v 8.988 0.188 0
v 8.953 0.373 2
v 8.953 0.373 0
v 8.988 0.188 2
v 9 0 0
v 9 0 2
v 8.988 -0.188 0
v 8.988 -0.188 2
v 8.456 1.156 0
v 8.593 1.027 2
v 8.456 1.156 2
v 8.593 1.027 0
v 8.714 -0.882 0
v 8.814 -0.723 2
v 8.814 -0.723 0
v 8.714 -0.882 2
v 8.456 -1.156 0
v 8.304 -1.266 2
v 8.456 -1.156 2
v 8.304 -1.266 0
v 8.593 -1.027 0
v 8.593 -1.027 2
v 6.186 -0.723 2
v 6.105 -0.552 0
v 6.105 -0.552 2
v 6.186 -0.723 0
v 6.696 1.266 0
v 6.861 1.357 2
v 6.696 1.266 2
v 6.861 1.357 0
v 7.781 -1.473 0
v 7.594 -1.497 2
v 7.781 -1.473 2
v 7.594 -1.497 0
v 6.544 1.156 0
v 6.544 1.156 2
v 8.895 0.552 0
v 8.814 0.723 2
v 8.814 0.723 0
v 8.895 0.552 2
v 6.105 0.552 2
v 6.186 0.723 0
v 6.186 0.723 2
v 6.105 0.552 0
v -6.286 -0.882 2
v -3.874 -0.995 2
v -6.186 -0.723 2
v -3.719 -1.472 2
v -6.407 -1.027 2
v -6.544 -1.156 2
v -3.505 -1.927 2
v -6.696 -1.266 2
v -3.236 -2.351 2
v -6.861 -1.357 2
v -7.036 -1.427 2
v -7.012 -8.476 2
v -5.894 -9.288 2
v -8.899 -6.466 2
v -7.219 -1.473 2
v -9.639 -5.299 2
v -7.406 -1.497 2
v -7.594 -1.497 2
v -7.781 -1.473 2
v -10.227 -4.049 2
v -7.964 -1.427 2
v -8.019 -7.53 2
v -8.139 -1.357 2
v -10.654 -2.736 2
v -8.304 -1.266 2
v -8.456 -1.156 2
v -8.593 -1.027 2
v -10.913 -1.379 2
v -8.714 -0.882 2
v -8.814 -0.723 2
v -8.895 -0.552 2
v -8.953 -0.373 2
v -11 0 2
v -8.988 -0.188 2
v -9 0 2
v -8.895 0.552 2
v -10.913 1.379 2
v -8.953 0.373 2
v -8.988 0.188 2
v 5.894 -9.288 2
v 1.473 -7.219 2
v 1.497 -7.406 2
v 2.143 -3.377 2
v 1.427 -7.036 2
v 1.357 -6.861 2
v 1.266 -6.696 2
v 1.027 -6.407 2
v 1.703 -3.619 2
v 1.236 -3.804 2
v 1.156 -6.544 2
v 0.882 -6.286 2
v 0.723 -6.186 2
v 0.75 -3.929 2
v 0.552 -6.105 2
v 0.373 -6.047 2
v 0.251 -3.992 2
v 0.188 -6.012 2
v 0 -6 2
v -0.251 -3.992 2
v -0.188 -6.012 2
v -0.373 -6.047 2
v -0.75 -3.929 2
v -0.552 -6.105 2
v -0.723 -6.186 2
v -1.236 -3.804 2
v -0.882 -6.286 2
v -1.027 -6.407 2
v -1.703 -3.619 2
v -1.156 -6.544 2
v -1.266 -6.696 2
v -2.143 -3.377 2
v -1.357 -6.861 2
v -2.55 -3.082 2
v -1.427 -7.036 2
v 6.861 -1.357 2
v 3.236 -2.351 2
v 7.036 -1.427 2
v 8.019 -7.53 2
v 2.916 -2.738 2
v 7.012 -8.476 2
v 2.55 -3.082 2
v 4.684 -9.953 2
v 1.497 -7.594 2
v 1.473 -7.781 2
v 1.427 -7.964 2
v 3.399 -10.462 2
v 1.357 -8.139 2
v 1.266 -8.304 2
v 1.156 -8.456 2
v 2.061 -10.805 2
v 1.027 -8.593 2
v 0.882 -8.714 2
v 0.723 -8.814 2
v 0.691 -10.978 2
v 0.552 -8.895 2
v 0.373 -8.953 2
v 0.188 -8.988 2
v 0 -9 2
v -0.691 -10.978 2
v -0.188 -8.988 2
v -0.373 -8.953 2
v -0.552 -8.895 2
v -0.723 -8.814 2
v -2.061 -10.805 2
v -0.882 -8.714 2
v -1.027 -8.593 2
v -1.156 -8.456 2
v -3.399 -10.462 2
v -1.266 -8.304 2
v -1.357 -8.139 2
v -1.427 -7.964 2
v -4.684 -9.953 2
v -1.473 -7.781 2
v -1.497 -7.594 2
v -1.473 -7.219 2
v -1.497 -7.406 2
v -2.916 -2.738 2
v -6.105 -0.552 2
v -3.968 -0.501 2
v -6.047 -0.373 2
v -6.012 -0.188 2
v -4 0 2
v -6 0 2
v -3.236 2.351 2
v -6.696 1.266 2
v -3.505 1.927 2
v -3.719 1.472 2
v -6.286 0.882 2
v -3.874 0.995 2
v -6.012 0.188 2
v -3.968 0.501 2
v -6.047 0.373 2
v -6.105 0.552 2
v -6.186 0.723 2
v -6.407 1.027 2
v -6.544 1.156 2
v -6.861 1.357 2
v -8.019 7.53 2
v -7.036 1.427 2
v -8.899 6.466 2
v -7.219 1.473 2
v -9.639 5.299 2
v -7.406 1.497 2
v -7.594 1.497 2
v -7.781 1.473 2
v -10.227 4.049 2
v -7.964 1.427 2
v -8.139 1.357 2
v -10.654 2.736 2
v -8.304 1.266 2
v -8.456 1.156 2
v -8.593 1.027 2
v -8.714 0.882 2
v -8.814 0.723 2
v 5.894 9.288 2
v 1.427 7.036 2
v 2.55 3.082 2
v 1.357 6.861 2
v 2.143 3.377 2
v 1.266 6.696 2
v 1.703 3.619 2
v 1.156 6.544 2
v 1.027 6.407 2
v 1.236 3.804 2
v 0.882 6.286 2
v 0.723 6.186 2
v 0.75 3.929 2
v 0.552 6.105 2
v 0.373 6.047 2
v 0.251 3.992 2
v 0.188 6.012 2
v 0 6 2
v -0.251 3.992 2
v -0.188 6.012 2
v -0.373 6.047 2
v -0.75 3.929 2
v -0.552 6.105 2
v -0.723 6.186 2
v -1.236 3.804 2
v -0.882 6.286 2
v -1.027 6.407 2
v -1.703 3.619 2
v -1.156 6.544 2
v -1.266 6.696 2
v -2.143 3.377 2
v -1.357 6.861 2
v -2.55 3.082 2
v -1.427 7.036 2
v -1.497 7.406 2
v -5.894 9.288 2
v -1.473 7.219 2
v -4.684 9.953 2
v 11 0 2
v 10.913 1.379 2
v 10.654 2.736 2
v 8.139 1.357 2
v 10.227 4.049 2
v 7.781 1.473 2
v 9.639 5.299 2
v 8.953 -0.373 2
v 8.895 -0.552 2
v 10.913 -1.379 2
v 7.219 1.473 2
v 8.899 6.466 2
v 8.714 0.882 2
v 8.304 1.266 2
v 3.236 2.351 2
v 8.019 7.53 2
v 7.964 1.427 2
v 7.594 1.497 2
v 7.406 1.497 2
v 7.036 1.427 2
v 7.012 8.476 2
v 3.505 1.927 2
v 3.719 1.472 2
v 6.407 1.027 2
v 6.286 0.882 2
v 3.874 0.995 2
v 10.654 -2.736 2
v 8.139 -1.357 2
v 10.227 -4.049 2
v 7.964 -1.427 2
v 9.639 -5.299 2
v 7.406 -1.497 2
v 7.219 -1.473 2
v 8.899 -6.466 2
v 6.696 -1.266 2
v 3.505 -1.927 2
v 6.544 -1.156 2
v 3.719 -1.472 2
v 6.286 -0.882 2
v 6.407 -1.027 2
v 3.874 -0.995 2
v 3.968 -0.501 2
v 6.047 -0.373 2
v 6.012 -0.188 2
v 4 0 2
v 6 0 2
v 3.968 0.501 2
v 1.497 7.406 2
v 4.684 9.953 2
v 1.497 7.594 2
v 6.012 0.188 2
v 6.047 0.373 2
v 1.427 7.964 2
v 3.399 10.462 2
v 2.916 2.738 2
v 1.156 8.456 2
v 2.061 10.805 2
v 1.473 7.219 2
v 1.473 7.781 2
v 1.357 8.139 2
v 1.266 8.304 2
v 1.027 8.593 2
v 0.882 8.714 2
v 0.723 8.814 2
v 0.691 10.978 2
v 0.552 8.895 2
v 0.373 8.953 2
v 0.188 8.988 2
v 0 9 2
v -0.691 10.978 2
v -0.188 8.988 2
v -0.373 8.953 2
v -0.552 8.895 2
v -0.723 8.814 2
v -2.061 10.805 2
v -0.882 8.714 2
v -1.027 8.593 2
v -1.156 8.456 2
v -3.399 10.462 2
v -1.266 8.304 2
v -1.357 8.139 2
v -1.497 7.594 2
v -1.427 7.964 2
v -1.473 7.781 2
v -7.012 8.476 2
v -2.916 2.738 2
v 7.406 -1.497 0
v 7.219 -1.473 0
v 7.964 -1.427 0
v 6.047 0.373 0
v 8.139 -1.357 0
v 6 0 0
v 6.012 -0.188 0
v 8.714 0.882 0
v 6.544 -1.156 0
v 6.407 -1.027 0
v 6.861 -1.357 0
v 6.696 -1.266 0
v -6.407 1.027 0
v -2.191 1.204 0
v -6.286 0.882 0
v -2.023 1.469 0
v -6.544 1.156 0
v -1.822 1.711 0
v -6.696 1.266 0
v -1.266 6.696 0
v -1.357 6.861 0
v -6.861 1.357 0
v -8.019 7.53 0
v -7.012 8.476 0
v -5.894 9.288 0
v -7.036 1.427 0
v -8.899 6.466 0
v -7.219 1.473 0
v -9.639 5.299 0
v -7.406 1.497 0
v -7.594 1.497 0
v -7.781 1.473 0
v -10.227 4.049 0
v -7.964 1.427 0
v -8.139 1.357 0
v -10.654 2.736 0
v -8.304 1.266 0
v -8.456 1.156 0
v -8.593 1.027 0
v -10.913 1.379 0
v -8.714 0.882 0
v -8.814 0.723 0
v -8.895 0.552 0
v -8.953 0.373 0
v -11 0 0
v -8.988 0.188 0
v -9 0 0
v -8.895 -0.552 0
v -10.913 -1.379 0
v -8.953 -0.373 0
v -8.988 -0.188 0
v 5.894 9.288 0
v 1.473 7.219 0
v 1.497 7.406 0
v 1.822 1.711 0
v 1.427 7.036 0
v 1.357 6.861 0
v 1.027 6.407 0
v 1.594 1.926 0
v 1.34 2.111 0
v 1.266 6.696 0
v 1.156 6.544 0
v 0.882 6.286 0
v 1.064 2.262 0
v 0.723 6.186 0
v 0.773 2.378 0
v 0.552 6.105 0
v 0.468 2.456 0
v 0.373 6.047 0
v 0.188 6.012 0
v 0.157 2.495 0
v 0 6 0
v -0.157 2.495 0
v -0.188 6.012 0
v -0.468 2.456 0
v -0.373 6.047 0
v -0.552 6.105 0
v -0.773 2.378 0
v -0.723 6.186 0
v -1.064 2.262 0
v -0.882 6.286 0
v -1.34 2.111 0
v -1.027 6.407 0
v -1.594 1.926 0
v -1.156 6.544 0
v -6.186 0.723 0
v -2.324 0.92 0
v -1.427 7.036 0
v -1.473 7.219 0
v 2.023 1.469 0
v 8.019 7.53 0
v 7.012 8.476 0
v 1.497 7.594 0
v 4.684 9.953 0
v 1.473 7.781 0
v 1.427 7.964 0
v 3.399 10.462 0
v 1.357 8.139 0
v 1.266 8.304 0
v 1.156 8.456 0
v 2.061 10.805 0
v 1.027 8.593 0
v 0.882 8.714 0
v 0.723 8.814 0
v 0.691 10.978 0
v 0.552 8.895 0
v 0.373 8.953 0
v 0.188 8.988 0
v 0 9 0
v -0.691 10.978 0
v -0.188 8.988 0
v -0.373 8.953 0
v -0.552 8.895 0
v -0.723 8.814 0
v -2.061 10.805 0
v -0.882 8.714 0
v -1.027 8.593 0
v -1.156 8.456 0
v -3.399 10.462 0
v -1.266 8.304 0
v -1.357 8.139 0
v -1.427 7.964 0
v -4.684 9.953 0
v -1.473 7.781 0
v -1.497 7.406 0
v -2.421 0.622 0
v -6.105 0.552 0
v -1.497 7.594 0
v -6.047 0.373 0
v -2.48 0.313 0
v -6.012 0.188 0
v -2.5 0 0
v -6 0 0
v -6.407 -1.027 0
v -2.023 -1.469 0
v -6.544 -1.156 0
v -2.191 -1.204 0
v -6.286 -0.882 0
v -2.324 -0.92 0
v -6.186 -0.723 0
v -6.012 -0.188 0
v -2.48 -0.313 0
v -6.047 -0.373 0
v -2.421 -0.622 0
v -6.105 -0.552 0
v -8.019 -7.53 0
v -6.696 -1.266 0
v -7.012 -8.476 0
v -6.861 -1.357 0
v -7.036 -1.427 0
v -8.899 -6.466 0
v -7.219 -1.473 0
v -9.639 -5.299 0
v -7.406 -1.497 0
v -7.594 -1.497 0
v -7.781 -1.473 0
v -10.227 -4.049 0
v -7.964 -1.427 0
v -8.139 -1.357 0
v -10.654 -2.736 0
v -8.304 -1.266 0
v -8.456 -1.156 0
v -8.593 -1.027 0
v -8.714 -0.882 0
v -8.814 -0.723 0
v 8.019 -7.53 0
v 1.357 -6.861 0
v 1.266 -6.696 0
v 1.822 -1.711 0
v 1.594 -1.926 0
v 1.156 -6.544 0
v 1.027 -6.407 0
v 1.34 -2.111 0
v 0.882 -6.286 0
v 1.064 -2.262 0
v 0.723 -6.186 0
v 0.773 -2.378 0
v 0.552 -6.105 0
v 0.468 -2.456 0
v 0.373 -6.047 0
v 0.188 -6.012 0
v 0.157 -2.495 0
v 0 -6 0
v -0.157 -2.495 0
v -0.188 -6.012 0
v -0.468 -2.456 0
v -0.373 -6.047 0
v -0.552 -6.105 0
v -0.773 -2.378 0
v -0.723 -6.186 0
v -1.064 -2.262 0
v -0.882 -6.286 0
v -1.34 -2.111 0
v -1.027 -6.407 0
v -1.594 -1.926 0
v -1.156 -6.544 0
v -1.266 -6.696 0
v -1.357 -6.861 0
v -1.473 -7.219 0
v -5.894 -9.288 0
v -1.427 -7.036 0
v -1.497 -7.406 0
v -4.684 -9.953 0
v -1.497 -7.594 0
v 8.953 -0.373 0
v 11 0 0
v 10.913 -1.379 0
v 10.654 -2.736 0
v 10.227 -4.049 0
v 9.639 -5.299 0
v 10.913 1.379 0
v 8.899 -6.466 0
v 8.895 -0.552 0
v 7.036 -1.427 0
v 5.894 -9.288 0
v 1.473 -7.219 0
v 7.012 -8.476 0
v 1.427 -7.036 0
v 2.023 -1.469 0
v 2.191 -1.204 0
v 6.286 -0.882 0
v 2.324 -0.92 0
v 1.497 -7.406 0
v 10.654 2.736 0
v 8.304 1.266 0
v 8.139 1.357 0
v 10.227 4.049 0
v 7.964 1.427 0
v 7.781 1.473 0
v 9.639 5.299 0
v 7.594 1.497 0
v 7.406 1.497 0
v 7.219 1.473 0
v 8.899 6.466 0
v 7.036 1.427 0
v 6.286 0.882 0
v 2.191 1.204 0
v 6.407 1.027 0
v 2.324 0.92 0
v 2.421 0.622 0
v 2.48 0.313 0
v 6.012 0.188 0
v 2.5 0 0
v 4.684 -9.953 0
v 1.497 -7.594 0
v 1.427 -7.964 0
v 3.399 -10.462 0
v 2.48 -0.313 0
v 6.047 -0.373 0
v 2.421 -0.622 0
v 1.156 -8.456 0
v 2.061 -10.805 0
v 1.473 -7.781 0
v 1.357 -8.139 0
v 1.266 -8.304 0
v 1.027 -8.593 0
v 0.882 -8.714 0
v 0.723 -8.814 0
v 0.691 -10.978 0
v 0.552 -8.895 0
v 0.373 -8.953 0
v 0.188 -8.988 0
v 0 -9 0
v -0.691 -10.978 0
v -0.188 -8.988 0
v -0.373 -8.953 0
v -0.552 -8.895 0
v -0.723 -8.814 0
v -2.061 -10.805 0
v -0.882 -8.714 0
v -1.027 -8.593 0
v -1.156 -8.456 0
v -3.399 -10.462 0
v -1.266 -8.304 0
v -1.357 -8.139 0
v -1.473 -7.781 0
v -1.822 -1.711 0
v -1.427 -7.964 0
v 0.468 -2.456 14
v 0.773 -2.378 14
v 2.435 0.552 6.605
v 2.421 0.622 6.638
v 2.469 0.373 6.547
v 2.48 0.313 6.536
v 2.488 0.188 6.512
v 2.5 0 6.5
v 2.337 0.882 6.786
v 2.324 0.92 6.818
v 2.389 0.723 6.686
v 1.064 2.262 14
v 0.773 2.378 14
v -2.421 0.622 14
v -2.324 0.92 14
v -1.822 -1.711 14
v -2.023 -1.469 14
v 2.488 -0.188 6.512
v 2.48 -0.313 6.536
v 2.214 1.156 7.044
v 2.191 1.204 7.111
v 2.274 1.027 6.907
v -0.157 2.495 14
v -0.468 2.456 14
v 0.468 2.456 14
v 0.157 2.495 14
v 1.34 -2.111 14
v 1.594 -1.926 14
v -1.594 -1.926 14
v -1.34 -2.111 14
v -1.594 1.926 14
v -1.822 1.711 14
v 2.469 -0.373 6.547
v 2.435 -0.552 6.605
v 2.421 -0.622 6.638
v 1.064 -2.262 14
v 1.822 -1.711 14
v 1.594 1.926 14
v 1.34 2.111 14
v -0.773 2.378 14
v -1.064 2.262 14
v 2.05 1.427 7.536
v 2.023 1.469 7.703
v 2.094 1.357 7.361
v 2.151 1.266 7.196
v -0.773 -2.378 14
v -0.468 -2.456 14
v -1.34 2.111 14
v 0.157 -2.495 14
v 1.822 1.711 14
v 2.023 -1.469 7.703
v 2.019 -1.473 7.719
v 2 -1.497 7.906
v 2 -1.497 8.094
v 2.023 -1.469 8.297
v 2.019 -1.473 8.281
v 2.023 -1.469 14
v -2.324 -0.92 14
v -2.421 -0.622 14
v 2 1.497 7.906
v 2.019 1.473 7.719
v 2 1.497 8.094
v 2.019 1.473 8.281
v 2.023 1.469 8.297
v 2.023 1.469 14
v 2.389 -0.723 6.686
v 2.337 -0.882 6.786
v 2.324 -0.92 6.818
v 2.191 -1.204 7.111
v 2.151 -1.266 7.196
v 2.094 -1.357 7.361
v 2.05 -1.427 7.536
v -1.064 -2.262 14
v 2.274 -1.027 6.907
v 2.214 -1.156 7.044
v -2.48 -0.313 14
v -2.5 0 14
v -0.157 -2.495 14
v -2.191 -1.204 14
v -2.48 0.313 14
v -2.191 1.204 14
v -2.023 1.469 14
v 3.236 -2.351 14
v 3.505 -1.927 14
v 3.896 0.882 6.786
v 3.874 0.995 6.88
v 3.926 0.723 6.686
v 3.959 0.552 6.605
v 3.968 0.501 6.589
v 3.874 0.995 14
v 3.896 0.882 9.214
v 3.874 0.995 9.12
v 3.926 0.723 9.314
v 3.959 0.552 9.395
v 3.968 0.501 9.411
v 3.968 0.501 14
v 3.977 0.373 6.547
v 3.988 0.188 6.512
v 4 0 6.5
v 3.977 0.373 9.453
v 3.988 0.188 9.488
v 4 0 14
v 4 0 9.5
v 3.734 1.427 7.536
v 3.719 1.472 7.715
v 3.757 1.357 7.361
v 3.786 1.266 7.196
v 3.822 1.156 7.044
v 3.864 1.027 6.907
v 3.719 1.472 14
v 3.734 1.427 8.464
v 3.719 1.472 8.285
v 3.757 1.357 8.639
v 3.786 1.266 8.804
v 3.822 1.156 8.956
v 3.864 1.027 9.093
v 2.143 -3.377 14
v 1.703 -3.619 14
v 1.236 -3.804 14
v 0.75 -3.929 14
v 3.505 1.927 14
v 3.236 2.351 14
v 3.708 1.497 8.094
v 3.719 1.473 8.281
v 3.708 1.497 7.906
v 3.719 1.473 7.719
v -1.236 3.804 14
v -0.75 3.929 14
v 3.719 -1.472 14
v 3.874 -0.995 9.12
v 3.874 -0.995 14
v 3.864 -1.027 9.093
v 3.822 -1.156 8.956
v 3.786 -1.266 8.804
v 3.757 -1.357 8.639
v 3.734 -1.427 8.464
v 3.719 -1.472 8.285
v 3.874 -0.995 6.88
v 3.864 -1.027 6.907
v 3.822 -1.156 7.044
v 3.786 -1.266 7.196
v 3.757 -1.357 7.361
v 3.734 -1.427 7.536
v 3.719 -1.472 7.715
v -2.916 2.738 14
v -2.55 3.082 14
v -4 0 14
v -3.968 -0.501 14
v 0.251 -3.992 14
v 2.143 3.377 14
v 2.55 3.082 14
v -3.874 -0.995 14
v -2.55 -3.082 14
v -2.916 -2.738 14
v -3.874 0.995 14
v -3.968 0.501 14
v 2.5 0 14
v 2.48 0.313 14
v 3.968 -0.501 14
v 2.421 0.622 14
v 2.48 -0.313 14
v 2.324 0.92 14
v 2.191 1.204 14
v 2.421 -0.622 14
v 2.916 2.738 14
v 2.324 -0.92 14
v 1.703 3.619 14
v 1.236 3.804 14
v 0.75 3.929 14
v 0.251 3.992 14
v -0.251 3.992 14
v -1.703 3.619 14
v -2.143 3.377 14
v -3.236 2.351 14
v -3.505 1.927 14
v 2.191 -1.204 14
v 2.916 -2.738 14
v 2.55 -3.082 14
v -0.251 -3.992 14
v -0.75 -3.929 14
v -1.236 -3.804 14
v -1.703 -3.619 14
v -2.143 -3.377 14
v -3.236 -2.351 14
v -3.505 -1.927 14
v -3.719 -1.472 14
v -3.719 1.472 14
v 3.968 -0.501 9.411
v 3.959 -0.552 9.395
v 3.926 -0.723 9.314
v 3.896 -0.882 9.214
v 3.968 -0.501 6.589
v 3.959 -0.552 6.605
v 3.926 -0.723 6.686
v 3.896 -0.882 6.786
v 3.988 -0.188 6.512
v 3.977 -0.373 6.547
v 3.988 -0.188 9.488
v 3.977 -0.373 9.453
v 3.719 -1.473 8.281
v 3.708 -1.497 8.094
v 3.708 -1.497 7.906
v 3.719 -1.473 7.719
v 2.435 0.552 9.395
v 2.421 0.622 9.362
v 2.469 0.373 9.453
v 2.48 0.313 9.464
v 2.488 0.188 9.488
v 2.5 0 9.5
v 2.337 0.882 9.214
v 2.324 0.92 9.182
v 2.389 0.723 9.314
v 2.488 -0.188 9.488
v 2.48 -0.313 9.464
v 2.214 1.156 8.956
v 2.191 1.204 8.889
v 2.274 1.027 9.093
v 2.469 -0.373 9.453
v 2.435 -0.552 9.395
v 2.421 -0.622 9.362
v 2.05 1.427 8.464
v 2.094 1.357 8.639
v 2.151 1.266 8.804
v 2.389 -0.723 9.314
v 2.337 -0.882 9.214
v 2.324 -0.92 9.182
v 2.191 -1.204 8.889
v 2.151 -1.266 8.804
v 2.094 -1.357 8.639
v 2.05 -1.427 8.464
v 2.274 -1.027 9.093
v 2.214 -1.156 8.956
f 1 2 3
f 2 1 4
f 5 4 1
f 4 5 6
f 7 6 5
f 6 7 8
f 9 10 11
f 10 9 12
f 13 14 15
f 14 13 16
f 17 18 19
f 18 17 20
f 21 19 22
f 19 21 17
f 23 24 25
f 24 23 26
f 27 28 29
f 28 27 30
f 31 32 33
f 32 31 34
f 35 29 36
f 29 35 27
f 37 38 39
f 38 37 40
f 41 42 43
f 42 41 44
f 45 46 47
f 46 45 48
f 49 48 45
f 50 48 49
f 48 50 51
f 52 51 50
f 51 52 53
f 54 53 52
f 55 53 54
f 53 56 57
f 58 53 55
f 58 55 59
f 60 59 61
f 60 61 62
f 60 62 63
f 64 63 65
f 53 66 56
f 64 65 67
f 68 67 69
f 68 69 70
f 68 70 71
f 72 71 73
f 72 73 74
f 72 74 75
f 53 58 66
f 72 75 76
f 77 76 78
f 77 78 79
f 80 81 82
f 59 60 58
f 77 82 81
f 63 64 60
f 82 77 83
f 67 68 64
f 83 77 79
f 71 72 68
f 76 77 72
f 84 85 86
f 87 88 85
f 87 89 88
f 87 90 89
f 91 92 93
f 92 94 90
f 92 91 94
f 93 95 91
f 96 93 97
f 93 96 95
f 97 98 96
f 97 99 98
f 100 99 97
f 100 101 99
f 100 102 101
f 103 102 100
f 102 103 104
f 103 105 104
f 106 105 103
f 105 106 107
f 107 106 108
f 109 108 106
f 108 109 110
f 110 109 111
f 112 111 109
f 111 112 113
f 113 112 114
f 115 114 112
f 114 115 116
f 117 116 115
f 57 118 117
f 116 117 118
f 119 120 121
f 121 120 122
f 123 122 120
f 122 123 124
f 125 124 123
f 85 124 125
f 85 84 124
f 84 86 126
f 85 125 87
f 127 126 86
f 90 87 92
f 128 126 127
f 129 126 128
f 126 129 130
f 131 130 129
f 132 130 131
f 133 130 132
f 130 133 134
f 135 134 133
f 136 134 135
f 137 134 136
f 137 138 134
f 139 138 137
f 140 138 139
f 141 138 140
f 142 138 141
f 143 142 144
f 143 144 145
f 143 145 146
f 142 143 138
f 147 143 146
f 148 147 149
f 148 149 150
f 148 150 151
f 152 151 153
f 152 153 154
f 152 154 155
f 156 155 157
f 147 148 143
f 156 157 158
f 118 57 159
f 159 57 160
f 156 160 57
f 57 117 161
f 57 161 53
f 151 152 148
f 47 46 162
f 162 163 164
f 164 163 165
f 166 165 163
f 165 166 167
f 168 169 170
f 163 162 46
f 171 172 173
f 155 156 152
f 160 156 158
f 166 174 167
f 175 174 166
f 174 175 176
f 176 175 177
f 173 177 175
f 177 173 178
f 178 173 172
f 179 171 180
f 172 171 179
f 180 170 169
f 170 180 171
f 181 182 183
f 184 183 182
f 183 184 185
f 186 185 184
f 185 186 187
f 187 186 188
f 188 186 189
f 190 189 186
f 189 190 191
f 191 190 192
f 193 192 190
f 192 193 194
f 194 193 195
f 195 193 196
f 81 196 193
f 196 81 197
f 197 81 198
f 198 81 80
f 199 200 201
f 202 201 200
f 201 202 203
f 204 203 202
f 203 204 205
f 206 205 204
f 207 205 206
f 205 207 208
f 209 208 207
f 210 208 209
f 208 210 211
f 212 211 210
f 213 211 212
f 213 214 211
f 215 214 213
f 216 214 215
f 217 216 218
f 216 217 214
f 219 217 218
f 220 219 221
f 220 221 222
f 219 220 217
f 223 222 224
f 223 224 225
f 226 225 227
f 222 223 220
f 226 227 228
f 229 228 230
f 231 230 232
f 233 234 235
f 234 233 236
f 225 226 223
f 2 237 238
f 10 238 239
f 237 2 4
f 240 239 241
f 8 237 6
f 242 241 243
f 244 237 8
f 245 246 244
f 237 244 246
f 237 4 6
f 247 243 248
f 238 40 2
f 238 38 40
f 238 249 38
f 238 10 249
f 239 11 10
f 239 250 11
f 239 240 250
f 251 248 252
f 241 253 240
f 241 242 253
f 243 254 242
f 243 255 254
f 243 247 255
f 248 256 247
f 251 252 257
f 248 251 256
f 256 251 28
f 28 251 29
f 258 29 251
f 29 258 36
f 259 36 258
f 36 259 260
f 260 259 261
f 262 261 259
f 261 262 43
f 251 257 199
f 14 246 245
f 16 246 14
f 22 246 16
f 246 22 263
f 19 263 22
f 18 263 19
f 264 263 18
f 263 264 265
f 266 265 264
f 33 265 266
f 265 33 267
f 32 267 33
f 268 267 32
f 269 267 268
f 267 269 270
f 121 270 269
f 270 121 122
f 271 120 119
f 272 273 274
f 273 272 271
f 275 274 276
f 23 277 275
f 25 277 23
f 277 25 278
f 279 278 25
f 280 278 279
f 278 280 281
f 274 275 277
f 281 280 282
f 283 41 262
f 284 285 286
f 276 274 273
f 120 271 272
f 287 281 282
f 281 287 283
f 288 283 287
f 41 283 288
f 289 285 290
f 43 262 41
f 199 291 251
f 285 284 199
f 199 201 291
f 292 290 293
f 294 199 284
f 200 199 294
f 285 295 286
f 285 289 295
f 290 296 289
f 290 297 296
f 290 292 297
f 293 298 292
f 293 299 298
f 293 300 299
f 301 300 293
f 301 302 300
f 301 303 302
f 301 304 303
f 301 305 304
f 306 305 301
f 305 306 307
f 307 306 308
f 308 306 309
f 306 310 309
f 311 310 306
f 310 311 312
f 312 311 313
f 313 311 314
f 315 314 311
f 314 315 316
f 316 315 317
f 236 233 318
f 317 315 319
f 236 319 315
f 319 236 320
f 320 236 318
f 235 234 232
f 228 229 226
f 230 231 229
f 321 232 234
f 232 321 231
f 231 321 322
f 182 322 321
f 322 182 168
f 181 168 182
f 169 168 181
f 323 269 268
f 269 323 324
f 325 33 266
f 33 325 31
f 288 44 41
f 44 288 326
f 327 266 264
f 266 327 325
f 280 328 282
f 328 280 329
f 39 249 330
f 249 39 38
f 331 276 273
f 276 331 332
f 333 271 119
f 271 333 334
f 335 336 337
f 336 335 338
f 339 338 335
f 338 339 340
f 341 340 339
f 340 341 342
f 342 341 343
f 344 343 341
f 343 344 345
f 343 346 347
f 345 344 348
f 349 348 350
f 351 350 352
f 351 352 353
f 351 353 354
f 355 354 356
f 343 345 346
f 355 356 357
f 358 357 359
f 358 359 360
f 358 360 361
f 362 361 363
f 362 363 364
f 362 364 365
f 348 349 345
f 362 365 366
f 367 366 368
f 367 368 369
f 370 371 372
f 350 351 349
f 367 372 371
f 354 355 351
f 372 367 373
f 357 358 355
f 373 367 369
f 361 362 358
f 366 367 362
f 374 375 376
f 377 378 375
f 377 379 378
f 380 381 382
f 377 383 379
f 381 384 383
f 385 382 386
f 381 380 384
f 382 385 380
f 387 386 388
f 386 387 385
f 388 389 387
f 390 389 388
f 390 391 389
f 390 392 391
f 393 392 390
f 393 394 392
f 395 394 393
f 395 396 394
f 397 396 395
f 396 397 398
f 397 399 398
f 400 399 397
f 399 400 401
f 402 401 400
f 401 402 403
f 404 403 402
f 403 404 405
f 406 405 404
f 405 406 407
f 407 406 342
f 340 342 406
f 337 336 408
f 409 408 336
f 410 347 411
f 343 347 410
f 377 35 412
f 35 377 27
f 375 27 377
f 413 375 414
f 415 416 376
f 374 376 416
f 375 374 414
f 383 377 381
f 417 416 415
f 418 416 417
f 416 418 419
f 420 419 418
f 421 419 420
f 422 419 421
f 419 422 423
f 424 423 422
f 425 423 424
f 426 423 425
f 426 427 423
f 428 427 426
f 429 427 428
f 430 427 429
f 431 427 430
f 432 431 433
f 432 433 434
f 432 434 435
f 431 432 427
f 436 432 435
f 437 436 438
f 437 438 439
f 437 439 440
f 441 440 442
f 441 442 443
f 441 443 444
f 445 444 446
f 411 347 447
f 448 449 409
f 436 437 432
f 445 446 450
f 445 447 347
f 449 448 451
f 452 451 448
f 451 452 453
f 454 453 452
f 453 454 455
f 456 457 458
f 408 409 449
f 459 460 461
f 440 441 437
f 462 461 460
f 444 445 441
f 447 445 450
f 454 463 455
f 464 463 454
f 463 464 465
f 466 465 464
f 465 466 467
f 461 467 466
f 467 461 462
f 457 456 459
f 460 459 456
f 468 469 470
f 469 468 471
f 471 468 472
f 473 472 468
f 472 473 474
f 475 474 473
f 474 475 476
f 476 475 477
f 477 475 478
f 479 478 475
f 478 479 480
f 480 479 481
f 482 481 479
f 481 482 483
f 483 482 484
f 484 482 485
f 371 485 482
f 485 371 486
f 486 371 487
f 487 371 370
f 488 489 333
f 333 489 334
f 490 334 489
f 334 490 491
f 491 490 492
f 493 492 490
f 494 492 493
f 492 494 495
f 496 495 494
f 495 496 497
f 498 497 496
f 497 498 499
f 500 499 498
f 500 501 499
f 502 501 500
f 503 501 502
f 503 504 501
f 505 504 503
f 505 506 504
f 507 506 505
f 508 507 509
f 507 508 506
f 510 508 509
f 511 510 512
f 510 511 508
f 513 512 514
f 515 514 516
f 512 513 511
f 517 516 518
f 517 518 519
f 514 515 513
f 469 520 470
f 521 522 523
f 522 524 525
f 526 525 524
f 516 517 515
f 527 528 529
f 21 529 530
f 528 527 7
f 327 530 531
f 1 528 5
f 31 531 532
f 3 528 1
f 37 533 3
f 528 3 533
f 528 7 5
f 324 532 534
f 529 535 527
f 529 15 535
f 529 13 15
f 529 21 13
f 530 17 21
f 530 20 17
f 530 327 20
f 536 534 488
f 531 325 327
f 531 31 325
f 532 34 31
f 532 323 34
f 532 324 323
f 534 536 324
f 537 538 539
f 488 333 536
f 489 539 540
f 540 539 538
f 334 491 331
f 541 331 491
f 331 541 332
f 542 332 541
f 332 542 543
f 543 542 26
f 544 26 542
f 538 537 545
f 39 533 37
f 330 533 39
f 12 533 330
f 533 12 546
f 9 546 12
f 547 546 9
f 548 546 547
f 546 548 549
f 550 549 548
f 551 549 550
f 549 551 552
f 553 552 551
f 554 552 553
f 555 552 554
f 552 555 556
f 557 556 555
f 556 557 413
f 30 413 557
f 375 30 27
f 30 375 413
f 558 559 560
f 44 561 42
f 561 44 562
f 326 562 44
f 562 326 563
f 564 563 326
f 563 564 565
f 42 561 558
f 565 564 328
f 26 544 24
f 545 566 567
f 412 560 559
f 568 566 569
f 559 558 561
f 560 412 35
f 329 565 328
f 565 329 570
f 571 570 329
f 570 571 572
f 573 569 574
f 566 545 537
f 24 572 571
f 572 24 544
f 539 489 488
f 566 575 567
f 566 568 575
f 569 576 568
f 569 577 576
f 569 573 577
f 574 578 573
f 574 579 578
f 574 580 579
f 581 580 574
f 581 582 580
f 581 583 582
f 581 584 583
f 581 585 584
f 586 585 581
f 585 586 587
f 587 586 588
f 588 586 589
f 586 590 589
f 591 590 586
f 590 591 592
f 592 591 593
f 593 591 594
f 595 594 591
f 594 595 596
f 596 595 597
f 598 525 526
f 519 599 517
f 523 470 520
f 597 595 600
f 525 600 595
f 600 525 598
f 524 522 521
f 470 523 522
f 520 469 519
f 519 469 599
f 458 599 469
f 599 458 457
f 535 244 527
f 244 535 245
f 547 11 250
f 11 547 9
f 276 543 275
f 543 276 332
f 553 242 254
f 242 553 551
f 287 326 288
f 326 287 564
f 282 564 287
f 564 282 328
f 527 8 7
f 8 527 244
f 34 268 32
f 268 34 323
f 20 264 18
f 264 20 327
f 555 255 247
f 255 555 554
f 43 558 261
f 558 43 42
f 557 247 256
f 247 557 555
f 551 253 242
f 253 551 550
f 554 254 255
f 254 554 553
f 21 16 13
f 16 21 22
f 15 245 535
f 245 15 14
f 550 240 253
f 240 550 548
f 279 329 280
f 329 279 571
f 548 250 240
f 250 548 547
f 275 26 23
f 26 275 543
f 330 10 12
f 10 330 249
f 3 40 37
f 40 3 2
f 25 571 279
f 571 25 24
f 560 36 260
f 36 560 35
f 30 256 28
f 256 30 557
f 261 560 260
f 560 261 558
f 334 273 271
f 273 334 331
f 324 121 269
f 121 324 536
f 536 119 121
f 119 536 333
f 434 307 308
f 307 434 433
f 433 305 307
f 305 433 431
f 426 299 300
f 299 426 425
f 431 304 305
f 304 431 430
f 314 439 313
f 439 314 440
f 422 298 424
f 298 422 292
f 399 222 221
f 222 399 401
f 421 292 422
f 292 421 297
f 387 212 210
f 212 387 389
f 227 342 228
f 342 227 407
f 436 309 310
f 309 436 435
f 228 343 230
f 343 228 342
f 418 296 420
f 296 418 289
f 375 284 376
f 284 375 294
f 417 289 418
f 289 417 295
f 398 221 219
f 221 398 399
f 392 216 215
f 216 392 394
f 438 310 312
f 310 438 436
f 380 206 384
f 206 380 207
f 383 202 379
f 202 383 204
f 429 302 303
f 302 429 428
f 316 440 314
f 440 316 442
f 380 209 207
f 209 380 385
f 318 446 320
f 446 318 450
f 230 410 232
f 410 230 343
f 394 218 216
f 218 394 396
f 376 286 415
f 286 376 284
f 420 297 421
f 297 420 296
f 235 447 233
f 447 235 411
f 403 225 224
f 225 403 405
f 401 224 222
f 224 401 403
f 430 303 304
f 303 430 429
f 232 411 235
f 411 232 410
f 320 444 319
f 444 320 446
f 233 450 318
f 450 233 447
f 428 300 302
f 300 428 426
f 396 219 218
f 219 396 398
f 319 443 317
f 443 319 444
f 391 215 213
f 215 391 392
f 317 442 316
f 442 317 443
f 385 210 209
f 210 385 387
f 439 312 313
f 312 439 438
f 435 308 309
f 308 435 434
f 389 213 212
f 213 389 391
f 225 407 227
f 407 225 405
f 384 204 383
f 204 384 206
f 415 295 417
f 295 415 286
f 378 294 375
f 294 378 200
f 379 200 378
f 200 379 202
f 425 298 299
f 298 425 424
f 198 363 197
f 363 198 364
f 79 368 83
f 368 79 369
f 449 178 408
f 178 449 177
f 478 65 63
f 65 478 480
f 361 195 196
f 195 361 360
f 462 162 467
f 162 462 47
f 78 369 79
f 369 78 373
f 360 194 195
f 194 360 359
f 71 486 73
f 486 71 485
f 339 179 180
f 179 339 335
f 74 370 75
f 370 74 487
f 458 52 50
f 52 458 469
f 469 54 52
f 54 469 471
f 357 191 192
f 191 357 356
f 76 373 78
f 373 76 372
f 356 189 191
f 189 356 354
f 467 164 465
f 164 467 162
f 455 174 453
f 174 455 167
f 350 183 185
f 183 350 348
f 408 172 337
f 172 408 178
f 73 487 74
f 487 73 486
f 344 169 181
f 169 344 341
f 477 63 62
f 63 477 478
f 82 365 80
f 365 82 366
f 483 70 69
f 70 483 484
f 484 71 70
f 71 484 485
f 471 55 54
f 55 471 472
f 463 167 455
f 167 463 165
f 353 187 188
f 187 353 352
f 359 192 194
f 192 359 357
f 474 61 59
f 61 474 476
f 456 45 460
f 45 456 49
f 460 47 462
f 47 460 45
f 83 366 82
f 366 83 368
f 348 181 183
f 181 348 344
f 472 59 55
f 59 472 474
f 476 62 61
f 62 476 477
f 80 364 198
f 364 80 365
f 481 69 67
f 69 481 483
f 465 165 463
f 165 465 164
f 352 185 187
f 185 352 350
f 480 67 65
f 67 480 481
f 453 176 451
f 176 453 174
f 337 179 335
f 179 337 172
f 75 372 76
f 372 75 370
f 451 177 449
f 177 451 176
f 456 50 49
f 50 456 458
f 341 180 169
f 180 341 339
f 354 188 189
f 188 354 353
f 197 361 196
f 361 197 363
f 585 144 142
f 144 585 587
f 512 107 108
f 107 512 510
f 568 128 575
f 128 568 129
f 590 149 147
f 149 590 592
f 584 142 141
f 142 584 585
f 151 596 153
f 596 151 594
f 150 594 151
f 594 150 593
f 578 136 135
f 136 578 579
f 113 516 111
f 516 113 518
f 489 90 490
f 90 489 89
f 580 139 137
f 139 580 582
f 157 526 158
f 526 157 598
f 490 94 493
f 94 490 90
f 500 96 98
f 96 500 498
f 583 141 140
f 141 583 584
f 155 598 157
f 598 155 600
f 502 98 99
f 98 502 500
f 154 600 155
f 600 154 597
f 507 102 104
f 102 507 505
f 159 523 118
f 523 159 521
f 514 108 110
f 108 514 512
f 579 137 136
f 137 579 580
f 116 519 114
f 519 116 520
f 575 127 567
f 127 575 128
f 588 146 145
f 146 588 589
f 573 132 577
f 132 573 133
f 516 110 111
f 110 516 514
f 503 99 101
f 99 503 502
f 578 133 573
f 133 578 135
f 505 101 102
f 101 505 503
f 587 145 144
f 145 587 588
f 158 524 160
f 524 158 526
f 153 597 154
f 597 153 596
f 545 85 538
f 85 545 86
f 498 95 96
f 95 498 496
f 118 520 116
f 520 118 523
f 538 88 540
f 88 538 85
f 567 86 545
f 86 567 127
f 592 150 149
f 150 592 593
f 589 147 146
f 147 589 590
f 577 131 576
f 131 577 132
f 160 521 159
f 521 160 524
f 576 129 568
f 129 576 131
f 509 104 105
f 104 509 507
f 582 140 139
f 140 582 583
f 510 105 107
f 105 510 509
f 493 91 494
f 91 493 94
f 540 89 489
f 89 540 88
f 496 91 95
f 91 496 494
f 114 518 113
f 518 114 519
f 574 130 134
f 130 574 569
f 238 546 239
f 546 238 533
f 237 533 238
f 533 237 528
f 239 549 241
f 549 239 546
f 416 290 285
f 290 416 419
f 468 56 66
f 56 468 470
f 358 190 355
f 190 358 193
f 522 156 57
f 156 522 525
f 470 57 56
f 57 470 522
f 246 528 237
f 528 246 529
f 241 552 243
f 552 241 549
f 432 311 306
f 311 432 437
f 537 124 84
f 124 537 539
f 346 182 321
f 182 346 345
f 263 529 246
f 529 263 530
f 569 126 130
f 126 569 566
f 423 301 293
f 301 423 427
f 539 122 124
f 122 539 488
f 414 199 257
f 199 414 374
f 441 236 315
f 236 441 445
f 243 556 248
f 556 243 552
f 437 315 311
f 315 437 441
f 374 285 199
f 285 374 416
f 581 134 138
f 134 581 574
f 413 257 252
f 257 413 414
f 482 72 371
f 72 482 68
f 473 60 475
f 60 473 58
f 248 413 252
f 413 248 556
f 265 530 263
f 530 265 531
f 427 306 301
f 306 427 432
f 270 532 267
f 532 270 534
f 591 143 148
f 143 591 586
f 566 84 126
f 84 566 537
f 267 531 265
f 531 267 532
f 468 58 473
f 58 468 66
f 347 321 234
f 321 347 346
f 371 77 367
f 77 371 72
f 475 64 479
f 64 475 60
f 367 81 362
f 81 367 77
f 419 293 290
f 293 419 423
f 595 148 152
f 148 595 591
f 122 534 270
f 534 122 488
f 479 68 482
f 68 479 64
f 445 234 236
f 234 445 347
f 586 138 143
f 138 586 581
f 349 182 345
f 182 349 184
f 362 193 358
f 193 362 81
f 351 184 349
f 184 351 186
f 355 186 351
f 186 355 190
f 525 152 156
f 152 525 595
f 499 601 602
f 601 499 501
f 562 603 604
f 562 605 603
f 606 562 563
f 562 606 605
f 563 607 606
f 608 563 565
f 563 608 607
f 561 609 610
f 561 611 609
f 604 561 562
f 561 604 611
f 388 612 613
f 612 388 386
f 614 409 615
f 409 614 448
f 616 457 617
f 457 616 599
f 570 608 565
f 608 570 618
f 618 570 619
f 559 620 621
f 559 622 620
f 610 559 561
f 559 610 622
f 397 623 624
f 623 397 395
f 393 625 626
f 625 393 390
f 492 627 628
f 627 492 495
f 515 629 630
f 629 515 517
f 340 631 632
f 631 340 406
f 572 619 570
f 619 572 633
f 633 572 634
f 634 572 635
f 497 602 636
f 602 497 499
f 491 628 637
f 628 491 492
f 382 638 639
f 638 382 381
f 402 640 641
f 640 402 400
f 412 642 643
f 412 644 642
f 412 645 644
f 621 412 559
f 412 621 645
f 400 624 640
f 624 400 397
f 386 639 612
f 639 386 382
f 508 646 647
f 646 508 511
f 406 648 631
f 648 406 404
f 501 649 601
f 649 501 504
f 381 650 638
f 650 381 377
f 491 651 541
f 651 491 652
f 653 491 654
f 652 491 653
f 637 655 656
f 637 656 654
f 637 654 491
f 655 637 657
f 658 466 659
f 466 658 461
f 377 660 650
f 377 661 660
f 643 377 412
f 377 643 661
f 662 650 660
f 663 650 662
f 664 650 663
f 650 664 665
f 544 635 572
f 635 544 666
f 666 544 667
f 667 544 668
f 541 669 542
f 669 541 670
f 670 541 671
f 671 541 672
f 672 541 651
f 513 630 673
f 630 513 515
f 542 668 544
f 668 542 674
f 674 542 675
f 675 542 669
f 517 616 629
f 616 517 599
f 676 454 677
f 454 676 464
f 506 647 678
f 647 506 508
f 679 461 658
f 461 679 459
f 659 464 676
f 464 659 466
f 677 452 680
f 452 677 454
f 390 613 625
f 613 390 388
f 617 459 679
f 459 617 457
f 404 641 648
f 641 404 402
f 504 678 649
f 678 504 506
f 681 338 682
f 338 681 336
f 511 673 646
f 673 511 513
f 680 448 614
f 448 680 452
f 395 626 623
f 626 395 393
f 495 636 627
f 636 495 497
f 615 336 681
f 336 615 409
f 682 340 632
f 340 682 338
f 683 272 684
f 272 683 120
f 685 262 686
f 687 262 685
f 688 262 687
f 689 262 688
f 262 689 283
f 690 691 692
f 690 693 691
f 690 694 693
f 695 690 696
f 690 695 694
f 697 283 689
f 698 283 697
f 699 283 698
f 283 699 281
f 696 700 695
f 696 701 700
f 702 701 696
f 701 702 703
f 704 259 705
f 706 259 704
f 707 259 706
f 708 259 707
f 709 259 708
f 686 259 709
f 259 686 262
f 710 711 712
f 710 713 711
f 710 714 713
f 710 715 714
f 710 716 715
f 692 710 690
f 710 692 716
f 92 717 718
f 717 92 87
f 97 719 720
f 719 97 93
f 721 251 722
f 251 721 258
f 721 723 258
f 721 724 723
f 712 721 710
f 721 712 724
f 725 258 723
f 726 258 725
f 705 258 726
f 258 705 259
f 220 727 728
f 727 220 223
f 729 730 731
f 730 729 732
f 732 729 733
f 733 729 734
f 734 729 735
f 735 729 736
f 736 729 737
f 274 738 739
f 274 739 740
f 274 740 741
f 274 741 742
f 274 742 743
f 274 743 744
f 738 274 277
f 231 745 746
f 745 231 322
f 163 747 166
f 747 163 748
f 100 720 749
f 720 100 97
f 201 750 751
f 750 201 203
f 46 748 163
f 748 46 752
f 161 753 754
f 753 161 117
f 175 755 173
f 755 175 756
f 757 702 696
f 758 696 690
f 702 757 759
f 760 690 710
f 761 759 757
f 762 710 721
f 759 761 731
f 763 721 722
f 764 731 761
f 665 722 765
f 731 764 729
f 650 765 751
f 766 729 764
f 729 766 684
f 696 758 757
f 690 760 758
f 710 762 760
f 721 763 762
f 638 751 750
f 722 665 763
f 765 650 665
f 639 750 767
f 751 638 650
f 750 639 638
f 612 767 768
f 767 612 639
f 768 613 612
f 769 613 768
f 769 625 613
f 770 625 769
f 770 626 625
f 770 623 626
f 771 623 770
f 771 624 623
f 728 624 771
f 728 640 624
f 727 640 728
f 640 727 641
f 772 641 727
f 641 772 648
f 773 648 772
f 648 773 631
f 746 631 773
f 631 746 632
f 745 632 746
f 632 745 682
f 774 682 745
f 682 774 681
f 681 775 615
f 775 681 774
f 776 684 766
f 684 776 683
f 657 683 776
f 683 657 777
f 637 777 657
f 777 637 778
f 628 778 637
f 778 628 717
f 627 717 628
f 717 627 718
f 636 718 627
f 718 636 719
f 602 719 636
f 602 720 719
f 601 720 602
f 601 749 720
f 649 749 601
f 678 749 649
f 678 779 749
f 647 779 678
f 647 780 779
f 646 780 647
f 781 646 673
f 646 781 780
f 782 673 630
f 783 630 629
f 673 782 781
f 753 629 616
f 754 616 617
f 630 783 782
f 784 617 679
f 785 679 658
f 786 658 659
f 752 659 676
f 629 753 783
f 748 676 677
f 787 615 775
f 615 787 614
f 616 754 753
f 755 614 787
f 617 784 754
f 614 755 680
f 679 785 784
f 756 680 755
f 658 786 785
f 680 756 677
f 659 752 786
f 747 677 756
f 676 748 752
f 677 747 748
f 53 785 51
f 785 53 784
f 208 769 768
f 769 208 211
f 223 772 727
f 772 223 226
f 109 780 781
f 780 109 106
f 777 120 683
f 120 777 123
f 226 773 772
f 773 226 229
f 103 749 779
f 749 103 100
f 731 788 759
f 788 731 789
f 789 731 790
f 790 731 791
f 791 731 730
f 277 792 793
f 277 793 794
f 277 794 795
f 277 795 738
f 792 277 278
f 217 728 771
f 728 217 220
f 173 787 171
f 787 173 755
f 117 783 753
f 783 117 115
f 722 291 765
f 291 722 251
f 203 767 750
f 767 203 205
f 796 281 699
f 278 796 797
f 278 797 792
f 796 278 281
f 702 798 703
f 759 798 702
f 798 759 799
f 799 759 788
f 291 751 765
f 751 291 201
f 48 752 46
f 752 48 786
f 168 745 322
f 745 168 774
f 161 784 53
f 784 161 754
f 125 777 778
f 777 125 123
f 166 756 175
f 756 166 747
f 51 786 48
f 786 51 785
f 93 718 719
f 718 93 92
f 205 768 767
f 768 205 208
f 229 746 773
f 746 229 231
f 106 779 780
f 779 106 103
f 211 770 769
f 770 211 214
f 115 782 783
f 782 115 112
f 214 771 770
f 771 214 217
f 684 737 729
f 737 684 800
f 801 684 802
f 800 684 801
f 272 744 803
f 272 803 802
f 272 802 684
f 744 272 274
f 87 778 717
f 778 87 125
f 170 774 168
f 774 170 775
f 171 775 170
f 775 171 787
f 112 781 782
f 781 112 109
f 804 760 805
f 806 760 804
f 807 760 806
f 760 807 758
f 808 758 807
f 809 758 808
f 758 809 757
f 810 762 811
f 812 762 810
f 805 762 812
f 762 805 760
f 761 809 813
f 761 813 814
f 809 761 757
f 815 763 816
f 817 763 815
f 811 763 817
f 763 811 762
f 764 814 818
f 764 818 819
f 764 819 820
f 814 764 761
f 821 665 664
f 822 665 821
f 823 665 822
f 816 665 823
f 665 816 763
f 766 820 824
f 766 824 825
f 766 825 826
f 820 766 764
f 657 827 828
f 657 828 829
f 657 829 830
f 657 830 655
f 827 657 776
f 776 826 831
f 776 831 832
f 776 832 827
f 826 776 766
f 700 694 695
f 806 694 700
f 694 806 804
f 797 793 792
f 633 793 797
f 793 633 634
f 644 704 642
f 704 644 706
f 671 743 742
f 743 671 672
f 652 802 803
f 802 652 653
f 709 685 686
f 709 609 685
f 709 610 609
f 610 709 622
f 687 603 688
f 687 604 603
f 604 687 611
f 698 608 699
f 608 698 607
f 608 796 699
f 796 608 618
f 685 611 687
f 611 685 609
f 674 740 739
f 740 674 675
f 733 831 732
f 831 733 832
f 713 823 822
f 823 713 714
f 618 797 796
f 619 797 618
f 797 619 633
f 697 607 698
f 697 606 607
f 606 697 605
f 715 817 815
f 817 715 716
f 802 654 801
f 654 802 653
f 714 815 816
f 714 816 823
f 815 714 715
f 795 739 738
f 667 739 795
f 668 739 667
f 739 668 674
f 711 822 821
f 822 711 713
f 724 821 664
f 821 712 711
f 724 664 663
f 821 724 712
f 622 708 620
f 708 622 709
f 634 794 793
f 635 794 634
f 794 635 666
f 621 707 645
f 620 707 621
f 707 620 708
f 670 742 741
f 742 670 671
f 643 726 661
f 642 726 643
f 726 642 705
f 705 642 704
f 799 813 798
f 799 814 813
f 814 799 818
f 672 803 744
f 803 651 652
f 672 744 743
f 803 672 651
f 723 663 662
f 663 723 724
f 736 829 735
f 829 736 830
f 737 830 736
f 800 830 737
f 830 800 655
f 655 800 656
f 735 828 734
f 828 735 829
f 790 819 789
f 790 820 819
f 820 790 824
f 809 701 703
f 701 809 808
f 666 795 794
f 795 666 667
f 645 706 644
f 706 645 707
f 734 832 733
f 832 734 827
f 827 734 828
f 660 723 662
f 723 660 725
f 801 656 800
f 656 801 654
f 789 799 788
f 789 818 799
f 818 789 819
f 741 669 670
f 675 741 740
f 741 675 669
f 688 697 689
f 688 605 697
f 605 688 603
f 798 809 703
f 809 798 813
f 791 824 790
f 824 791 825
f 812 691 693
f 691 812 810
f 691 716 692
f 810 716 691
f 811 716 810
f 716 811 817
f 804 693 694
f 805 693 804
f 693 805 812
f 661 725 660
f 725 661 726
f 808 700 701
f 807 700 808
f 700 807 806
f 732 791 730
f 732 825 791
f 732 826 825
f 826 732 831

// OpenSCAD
$fn = 50;

flange_thickness = 2;

module setscrew() {
    cylinder(d = 3, h = 10);
}

module flange() {
    f_od = 22;  // overall dia
    bcd = 15;   // bolt circle dia
    f_t = 2;    // flange thickness
    h_id = 3;   // bolt hole ID
    id = 5;     // bore ID
    
    difference() {
        cylinder(d = f_od, h = f_t);
        // bolt circle
        for(i = [0:3]) {
            angle = 360/4*i;
            echo(angle);
            rotate([0, 0, angle]) translate([bcd/2, 0]) cylinder(d = h_id, h = f_t);
        }
        // bore
        cylinder(h=f_t, d = id);
    }
}

module barrel() {
    id = 5;
    od = 8;
    l = 12; // hub barrel length
    difference() {
        cylinder(h = l, d = od);
        cylinder(h = l, d = id);
        translate([0,0, l/2]) rotate([0, 90]) setscrew();
    }
}

flange();
translate([0, 0, flange_thickness]) barrel();
